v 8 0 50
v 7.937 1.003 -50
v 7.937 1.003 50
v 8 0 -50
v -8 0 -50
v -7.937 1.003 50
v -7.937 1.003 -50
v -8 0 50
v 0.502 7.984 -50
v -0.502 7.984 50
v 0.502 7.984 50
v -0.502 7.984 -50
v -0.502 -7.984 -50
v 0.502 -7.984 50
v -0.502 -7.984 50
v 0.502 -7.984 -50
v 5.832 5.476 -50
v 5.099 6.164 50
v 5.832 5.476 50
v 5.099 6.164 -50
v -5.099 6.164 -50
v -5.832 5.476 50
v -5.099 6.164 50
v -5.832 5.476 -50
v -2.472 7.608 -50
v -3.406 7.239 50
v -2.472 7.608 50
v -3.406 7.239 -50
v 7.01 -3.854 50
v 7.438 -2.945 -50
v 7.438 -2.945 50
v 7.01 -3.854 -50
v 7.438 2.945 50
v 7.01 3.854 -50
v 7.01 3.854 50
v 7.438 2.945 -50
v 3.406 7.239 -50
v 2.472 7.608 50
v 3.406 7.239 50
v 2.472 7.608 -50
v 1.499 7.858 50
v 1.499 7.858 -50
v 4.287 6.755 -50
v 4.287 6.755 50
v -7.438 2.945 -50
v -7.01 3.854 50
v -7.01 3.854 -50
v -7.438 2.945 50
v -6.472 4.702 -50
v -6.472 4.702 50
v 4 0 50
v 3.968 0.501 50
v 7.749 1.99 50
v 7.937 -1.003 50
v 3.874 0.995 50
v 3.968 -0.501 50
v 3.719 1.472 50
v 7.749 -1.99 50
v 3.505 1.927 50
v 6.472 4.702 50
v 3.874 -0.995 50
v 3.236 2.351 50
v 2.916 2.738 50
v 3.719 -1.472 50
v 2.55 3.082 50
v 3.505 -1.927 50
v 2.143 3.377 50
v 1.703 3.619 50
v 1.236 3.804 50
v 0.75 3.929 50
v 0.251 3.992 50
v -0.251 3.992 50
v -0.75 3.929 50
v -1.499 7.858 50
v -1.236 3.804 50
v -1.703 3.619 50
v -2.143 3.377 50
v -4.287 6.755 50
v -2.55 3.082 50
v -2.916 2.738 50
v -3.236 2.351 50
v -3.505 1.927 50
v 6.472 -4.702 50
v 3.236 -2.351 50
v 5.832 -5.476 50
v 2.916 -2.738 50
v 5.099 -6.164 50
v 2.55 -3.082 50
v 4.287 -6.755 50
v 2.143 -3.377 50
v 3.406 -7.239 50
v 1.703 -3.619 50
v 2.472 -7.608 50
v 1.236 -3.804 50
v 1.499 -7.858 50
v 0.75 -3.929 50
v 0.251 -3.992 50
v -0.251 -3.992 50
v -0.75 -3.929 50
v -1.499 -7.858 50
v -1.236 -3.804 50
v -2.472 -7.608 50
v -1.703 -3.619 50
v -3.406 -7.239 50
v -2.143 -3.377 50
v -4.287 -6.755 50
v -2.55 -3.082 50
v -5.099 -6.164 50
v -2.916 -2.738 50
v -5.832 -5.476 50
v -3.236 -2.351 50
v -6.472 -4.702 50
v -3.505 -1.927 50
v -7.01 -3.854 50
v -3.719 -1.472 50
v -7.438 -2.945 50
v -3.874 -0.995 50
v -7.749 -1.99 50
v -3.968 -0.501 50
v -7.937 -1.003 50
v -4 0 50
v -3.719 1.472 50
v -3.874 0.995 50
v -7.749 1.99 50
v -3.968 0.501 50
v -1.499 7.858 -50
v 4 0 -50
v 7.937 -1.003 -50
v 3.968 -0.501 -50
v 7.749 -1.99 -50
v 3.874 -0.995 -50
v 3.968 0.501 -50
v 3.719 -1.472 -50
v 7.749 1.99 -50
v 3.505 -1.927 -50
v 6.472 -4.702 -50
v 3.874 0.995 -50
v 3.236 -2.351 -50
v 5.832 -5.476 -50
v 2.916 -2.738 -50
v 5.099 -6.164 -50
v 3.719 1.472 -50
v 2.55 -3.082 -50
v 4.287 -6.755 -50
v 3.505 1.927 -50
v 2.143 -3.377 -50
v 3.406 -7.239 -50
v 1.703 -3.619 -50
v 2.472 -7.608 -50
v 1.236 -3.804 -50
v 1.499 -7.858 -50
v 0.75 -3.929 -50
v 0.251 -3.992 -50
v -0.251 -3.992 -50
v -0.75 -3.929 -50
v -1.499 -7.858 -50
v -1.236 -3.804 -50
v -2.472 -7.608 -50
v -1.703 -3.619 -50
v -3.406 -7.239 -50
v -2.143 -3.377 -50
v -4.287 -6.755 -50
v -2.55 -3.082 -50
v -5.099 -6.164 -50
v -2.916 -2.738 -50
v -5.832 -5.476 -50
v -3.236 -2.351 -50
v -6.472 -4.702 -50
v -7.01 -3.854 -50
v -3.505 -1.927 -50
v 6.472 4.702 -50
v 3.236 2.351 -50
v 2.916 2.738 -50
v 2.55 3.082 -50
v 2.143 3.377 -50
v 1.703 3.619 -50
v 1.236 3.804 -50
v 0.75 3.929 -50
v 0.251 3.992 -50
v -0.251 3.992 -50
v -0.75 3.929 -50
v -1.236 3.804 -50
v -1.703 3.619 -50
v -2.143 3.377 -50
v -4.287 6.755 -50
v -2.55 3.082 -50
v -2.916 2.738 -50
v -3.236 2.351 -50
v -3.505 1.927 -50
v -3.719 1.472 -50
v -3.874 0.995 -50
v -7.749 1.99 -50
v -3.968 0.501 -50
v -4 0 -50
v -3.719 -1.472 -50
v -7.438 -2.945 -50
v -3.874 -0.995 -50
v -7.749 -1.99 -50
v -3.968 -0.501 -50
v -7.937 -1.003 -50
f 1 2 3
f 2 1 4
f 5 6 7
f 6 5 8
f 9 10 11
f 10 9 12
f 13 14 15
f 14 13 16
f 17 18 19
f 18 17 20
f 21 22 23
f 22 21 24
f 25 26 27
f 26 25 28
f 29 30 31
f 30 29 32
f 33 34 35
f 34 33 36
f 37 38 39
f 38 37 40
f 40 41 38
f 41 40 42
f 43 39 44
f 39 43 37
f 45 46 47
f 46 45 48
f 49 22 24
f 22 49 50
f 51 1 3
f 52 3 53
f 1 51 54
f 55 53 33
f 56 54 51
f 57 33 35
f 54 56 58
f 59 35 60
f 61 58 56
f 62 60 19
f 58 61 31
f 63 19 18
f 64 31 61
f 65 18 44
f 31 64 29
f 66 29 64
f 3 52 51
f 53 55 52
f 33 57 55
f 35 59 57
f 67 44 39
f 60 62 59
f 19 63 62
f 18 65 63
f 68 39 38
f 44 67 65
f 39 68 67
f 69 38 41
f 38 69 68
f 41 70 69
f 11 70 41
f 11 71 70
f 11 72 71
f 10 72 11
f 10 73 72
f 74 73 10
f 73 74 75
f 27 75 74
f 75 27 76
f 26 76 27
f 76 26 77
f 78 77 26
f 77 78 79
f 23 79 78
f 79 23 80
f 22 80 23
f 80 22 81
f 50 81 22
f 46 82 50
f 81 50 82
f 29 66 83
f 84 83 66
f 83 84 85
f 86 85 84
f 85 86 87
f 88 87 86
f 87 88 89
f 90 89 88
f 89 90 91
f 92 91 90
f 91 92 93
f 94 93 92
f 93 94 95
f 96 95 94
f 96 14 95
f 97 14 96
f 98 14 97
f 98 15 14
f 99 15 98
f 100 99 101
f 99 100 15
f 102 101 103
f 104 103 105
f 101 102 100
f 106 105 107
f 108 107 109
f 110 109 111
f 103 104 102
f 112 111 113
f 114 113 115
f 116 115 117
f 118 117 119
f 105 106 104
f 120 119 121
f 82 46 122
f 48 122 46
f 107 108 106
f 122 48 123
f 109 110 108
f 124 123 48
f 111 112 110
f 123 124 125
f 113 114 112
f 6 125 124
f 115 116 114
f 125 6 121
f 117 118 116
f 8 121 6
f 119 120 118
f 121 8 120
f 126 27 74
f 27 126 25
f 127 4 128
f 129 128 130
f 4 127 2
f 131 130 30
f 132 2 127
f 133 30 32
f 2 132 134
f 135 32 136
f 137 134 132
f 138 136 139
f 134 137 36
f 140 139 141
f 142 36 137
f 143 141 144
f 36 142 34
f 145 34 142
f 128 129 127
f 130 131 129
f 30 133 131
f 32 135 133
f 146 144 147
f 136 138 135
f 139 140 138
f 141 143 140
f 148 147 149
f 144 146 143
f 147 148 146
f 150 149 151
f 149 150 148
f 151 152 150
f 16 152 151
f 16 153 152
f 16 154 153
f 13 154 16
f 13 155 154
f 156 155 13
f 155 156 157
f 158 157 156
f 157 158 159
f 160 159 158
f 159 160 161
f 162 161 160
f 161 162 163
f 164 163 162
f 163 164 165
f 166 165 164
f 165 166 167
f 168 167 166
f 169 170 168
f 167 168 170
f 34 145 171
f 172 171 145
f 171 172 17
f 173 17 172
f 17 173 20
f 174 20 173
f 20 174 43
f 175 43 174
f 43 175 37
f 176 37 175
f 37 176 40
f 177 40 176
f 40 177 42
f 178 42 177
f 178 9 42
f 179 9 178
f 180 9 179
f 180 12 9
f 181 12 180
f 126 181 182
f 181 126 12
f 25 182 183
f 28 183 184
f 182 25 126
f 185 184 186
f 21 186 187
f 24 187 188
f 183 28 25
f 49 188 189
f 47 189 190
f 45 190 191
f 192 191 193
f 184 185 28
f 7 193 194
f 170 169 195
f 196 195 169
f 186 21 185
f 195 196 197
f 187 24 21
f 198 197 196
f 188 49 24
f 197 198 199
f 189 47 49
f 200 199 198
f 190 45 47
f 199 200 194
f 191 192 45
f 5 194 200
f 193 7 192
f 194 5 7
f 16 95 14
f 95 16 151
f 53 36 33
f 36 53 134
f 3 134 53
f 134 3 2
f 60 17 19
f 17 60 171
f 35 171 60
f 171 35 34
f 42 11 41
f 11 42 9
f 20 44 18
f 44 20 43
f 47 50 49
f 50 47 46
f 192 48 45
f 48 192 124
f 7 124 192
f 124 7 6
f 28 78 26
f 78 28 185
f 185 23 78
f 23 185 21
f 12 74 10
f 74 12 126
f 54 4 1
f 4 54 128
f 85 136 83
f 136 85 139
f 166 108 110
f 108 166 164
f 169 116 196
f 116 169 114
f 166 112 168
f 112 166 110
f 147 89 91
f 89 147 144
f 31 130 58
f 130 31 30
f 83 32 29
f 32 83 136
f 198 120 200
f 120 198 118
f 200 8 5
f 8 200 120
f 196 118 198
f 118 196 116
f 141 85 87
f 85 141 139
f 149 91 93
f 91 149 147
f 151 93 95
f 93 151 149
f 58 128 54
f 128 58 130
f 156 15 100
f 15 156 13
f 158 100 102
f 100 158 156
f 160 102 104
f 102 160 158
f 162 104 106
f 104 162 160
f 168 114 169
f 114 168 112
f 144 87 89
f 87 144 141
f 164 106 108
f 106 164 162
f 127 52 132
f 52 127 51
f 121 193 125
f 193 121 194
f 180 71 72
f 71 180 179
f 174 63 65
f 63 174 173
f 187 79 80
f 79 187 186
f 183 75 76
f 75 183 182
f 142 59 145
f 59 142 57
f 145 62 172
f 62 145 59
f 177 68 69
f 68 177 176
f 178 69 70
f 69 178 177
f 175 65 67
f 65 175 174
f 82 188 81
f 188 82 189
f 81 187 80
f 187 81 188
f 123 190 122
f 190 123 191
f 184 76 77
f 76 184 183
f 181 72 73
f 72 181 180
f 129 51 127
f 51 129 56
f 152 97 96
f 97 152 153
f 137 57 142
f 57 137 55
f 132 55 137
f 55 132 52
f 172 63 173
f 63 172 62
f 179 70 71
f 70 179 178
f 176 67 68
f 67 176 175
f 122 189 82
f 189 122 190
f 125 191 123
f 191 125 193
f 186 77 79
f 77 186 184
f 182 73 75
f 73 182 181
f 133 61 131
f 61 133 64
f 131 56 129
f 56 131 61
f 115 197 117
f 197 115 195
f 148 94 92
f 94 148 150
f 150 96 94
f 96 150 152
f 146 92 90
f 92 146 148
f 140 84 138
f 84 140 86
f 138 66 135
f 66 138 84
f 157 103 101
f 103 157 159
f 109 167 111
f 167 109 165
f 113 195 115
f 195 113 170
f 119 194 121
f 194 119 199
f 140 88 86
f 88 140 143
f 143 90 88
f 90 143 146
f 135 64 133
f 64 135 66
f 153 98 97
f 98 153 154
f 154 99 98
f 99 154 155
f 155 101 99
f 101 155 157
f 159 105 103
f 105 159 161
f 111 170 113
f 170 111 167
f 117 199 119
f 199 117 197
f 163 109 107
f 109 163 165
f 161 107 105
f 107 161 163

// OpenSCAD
$fn = 50;


difference() {
	union() {
		translate(v = [0, 0, -50.0000000000]) {
			cylinder(h = 100, r = 8.0000000000);
		}
	}
	union() {
		translate(v = [0, 0, -100.0000000000]) {
			cylinder(h = 200, r = 4.0000000000);
		}
	}
}
